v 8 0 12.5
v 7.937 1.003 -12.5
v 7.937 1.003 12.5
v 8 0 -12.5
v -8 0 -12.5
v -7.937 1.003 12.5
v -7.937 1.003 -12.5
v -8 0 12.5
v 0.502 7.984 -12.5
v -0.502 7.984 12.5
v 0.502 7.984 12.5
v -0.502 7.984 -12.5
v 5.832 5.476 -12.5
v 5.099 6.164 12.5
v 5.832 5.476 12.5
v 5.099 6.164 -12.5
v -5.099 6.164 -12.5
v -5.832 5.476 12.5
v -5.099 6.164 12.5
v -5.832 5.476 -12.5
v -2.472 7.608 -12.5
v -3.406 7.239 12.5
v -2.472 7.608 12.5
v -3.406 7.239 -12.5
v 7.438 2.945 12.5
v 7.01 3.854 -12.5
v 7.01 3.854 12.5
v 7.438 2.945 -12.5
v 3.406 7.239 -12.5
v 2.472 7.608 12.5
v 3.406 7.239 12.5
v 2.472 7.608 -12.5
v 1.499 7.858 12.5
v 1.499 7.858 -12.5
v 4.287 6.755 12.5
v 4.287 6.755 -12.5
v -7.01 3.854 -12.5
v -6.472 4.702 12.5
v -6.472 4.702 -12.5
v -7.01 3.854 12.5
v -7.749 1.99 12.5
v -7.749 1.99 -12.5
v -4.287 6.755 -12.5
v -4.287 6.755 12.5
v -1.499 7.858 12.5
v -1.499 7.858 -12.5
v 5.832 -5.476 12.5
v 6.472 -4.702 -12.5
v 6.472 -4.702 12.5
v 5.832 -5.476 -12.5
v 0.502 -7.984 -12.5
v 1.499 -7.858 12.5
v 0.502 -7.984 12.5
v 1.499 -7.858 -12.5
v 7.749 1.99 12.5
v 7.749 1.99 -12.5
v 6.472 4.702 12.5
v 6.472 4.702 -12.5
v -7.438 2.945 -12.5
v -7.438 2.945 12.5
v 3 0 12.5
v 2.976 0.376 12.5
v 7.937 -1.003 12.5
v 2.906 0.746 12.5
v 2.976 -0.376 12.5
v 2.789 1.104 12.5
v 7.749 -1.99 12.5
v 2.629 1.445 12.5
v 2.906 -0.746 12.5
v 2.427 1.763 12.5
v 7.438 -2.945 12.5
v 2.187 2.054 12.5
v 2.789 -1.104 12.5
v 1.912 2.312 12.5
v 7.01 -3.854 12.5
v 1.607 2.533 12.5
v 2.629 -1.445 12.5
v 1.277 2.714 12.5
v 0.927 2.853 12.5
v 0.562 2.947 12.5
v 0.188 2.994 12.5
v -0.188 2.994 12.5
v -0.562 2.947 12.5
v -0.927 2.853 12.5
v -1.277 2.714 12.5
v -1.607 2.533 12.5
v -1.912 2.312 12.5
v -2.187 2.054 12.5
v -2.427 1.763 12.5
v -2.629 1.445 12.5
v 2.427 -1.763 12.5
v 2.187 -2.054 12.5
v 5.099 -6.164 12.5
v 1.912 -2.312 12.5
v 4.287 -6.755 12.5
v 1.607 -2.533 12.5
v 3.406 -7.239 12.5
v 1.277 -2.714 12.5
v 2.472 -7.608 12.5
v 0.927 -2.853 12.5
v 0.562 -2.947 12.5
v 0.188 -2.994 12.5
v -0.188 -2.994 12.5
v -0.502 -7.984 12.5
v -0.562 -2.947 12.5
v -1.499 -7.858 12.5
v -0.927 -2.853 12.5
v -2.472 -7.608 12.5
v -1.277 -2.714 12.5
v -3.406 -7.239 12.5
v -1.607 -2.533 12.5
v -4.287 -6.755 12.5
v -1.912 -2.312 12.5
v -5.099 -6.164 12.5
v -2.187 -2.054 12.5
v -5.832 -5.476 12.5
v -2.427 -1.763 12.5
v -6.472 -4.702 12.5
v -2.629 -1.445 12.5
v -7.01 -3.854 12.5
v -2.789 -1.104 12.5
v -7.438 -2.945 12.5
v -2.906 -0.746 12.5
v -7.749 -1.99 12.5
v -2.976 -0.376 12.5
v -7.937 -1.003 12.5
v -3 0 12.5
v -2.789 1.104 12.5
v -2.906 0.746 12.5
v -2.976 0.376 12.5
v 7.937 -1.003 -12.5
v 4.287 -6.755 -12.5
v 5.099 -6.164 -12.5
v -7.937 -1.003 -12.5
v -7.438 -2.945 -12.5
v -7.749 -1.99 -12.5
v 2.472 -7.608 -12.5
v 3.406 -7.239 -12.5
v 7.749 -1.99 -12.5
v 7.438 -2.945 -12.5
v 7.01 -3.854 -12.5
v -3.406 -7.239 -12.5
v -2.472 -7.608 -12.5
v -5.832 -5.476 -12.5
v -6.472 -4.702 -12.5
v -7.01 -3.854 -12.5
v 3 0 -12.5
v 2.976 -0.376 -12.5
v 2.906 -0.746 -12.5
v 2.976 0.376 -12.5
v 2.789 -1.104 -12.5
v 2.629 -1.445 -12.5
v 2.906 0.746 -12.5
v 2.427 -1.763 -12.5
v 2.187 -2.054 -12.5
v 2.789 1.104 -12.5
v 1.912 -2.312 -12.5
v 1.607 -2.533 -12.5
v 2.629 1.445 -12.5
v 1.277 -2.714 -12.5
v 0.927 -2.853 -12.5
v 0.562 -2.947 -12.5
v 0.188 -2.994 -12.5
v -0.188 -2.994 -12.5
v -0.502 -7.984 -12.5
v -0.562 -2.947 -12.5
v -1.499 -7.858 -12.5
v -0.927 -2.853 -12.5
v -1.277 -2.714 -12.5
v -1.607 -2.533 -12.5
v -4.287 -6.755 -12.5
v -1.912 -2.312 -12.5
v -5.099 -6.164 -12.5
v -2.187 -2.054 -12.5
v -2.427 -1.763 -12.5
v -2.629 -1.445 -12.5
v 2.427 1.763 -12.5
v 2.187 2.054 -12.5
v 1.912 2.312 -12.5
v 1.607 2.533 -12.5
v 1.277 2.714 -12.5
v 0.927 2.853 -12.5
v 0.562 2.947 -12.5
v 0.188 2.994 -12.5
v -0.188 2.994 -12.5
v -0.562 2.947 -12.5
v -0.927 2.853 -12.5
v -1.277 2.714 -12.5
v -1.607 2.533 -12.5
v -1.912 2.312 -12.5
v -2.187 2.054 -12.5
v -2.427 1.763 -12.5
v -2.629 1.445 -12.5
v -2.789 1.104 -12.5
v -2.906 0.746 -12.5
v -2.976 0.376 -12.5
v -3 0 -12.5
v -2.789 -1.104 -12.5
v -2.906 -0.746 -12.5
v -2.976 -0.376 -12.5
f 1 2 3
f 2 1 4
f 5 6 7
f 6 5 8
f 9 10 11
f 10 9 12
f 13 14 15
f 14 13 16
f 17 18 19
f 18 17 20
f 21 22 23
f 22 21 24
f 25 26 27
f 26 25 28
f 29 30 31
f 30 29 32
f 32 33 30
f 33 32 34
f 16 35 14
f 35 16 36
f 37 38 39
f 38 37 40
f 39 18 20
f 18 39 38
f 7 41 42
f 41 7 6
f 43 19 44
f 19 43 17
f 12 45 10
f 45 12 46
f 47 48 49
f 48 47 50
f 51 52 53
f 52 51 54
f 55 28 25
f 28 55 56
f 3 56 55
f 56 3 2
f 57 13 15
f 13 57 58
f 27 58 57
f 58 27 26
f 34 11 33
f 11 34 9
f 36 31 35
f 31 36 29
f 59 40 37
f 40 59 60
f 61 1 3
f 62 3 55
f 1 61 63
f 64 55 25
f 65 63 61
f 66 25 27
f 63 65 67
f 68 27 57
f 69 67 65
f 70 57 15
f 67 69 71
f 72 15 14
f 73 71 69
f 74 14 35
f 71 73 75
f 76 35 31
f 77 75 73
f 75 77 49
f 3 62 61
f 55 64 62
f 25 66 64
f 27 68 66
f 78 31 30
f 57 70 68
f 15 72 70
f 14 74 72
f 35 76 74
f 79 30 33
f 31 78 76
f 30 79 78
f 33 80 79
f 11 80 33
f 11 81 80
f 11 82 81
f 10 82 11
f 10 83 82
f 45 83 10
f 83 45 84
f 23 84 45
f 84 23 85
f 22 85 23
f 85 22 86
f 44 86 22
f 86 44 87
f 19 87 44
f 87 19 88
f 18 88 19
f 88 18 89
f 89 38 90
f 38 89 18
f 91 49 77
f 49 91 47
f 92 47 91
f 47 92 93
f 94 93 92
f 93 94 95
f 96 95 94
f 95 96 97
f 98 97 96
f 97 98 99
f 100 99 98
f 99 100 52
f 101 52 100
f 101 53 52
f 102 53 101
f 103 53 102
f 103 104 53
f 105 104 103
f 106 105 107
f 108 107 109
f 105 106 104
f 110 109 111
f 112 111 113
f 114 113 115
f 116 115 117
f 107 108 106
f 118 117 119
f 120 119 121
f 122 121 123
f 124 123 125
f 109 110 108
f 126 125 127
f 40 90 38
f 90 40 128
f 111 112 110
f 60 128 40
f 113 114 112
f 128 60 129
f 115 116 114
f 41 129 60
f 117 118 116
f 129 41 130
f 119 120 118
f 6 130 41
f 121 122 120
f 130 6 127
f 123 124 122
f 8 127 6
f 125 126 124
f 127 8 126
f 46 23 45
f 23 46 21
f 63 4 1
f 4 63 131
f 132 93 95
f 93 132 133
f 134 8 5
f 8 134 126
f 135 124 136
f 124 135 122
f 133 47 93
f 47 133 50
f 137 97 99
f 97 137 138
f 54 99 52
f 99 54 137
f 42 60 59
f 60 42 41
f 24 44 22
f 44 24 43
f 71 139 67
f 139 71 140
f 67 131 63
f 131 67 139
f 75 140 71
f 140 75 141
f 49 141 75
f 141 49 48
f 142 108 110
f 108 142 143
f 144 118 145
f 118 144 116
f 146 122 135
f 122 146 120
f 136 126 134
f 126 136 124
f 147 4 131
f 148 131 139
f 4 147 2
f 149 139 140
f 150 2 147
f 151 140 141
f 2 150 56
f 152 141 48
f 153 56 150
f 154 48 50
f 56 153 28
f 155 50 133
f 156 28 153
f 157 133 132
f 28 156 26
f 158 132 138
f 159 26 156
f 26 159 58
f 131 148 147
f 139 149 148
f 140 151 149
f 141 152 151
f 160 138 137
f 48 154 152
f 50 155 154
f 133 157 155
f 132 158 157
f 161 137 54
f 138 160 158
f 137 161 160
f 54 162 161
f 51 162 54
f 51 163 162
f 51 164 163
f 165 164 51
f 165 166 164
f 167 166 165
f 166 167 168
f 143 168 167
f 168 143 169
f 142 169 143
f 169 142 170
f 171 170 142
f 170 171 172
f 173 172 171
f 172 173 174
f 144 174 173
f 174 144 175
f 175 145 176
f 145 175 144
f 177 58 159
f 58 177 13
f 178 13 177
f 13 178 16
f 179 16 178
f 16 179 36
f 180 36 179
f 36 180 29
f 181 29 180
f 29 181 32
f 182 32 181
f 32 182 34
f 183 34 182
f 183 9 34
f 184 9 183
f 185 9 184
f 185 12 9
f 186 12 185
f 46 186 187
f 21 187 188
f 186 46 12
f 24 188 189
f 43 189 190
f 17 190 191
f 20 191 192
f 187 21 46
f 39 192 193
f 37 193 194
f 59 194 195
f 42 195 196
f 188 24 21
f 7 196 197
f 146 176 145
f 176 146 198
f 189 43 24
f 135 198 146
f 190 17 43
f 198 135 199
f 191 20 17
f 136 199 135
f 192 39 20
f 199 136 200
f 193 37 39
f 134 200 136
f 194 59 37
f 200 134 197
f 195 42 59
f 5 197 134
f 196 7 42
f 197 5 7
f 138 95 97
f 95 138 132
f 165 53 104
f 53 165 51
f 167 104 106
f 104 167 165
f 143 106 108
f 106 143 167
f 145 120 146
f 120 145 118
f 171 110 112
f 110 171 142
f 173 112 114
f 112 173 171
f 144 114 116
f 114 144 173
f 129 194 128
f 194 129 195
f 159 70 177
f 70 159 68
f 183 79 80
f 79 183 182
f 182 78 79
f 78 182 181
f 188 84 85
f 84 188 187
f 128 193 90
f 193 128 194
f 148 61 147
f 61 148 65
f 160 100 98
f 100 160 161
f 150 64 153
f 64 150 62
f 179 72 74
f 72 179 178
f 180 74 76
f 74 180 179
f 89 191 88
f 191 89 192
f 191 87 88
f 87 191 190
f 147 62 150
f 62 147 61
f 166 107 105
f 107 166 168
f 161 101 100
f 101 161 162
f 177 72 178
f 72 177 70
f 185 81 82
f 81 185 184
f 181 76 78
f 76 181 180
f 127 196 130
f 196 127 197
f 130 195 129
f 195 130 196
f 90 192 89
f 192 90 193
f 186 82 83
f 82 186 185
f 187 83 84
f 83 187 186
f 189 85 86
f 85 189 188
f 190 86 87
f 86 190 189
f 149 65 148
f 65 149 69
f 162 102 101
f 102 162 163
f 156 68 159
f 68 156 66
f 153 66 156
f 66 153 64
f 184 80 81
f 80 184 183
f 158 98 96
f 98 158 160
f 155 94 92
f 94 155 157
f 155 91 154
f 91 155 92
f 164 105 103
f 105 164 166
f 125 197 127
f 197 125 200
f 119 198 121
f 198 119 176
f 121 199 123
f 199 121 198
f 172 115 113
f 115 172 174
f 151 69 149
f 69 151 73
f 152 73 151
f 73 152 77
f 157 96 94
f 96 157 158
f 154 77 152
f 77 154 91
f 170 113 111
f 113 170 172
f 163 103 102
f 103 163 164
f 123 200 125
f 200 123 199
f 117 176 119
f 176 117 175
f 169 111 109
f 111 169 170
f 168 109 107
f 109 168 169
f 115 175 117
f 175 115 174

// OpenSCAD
$fn = 50;


difference() {
	union() {
		translate(v = [0, 0, -12.5000000000]) {
			cylinder(h = 25, r = 8.0000000000);
		}
	}
	union() {
		translate(v = [0, 0, -100.0000000000]) {
			cylinder(h = 200, r = 3.0000000000);
		}
	}
}
